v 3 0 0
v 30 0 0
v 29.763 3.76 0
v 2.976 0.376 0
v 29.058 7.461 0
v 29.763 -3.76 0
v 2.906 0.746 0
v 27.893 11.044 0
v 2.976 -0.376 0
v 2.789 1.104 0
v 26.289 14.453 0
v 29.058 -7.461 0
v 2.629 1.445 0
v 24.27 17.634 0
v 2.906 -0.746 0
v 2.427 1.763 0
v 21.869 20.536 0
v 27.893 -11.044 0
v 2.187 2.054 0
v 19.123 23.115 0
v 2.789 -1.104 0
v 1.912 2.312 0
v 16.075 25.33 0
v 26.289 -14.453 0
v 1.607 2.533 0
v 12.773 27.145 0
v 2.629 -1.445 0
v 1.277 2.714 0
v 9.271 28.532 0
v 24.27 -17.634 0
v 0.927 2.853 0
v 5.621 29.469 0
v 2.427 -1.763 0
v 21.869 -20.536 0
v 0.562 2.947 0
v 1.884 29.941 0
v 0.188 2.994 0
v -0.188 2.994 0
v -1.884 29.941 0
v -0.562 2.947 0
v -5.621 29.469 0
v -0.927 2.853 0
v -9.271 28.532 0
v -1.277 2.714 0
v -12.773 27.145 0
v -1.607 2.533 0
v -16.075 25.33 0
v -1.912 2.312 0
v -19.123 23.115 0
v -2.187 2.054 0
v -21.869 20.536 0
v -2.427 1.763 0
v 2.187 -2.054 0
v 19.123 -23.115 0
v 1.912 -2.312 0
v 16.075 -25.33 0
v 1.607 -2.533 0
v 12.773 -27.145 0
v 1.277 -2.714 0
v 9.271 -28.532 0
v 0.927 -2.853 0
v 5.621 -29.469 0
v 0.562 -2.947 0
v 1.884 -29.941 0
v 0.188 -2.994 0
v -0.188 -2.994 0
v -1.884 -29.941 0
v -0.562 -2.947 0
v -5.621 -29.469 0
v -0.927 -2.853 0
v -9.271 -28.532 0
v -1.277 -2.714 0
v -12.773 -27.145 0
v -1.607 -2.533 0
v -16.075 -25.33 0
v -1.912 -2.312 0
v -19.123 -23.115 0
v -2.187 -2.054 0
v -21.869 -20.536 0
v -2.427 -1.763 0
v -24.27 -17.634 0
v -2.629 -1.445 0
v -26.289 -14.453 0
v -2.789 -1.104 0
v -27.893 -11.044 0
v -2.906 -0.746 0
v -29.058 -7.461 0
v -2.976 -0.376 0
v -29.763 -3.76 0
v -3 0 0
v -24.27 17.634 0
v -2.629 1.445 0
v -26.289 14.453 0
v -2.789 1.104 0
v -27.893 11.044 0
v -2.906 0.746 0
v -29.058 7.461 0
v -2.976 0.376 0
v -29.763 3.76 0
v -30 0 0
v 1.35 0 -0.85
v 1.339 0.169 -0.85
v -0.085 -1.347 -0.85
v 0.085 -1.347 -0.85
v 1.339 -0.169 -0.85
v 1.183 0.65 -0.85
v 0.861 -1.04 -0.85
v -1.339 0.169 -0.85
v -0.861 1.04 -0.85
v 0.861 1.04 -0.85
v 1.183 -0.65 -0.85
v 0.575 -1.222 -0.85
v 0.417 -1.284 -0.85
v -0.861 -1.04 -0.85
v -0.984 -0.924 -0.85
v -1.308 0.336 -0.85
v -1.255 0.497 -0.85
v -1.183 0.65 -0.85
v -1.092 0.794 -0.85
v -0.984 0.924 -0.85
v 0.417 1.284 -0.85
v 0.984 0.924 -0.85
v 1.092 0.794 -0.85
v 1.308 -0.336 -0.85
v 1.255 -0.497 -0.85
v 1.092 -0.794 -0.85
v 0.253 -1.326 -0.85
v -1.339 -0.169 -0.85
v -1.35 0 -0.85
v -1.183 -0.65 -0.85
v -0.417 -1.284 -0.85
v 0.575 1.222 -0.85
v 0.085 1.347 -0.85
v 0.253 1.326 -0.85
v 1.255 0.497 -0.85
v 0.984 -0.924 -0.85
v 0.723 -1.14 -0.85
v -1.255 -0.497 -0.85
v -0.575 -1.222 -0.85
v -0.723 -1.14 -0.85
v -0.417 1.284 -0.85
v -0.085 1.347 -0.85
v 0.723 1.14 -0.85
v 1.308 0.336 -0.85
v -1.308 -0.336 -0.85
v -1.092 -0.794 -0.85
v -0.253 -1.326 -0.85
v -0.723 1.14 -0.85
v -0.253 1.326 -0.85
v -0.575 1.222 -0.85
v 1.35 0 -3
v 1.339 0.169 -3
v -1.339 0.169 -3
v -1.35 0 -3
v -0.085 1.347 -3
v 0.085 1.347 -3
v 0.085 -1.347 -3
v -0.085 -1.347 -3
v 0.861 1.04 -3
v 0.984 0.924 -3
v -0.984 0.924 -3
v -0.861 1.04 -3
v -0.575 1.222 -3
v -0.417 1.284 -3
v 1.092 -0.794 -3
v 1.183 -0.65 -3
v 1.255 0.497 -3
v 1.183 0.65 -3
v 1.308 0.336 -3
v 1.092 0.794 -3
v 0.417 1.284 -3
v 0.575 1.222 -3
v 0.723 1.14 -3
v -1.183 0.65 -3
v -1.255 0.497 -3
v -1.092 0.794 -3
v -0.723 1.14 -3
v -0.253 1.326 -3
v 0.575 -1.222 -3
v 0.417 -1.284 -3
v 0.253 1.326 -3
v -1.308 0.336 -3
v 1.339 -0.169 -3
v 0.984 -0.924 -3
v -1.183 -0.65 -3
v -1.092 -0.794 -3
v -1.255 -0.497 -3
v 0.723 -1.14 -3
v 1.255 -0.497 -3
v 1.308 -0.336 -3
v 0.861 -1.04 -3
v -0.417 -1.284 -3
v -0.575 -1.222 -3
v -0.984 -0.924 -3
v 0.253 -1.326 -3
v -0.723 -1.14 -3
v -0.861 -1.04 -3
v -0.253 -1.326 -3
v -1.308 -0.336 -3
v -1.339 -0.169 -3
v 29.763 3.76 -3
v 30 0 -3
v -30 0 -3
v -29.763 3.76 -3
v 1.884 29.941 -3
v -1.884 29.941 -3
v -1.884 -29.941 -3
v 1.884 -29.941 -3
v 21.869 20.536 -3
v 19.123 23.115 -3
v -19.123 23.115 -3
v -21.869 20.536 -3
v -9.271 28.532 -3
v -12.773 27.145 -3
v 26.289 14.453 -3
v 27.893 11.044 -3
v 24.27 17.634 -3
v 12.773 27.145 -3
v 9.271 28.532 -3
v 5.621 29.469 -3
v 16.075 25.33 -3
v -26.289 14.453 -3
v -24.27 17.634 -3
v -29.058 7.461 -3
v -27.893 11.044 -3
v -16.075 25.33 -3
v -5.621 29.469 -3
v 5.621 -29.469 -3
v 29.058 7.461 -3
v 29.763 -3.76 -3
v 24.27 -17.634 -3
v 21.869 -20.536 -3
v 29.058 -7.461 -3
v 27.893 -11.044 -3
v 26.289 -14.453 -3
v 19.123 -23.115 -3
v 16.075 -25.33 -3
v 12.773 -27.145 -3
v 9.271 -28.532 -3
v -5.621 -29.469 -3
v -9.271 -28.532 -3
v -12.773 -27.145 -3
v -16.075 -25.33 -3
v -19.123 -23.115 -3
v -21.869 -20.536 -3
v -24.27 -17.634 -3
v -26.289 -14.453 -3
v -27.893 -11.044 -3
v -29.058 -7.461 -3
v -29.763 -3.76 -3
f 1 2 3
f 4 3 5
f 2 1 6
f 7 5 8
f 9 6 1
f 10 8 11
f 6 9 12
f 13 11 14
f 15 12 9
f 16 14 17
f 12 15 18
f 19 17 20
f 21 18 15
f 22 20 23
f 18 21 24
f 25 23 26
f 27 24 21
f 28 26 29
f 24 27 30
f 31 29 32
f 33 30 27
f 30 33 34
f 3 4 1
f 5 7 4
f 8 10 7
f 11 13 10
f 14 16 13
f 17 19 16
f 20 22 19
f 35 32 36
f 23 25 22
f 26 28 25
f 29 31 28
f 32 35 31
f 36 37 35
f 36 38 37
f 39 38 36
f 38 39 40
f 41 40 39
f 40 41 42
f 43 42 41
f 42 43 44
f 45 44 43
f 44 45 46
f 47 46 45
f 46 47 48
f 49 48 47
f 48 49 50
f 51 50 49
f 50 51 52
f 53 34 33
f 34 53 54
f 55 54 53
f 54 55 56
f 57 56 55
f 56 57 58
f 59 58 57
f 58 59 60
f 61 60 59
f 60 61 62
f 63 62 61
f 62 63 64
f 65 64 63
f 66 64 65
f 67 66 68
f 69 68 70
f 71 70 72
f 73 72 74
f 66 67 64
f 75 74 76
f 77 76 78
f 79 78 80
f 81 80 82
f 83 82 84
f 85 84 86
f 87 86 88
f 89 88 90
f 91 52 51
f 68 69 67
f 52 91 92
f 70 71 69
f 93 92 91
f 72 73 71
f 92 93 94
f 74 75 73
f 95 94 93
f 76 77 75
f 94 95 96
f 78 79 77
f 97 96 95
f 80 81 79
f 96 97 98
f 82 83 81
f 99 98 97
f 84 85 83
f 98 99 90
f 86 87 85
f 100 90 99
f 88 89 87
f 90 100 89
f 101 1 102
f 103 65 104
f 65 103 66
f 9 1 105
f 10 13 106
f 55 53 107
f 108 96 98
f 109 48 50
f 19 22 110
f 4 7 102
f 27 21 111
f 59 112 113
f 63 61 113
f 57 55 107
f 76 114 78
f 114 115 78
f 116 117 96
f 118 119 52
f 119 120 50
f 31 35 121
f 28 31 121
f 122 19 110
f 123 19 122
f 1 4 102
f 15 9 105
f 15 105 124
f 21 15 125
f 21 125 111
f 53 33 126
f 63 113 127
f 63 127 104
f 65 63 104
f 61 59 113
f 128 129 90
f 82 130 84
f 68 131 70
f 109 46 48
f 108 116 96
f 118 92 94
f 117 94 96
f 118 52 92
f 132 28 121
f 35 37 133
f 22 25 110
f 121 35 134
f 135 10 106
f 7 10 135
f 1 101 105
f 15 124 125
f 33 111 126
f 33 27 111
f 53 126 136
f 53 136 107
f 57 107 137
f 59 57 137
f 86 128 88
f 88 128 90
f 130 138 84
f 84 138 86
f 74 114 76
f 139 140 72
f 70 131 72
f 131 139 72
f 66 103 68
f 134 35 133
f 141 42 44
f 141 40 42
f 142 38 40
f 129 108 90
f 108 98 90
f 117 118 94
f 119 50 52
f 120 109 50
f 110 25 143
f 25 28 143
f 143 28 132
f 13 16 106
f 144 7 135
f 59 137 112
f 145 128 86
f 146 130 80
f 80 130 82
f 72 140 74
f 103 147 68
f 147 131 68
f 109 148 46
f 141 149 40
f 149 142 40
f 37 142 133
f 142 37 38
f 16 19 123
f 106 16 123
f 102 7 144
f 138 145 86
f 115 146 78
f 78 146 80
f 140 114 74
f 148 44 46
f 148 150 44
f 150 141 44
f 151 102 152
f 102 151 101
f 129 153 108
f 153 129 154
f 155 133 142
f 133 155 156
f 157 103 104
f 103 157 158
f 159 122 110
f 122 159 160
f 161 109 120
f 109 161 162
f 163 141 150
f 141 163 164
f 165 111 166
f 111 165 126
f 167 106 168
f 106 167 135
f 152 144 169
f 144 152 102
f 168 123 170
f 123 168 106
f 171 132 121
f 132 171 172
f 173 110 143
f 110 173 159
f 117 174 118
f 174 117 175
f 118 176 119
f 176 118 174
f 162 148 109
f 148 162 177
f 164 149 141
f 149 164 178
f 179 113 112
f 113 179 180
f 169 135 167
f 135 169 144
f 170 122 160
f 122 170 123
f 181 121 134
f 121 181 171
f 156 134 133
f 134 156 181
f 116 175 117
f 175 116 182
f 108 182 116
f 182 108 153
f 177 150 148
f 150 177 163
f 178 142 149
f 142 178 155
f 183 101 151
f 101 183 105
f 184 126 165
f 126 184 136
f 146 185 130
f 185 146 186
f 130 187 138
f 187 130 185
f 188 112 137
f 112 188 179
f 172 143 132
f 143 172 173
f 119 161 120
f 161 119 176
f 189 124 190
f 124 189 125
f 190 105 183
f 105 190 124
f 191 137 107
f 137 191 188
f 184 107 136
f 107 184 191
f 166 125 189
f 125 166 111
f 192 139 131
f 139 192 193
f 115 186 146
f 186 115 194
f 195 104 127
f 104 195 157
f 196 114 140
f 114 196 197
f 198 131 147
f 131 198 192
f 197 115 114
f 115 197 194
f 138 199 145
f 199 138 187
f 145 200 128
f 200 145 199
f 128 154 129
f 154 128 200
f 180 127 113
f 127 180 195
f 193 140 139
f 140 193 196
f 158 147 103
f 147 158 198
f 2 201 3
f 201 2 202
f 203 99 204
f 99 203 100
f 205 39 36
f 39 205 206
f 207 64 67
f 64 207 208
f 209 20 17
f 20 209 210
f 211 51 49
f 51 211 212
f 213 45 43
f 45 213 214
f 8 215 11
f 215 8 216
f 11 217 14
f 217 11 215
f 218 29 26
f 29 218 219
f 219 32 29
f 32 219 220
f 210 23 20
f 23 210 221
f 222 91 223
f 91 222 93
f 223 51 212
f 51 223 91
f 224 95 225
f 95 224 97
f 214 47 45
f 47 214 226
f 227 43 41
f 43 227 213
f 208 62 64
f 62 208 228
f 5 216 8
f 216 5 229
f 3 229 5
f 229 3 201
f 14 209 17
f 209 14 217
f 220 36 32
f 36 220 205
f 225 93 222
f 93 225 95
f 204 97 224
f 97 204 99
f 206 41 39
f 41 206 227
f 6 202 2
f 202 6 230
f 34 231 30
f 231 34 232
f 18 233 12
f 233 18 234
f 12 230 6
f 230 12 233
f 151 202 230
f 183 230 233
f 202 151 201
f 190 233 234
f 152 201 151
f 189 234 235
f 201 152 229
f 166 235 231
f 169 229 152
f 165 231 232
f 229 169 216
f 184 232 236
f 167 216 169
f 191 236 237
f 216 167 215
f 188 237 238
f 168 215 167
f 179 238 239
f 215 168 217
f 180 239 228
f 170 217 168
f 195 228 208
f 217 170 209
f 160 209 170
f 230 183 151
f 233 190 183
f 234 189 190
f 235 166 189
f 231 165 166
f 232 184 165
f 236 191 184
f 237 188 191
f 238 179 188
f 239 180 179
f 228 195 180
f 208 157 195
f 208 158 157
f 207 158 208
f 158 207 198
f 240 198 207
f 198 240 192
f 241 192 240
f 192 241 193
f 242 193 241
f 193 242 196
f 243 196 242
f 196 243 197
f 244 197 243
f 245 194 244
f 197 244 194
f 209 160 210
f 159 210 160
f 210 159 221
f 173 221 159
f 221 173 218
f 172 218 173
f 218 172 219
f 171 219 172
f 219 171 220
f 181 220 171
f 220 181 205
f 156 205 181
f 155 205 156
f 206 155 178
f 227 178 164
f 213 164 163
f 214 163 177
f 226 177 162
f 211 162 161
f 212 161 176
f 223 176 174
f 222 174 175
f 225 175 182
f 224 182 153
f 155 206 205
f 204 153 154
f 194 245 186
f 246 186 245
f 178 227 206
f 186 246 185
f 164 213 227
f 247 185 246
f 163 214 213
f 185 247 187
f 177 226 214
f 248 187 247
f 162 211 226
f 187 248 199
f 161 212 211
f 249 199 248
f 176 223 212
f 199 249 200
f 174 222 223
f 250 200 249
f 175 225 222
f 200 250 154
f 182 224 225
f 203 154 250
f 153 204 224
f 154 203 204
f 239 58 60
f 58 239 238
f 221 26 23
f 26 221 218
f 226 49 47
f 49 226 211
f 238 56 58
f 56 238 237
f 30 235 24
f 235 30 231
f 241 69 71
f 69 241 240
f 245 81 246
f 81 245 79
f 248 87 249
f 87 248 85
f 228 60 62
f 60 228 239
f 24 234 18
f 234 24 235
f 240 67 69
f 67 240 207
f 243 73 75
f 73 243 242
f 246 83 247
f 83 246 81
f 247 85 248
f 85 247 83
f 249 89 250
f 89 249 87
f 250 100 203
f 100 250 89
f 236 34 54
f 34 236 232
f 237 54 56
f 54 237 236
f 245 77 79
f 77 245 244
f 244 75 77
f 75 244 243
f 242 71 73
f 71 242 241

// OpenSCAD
$fn = 50;


difference() {
	union() {
		translate(v = [0, 0, -3.0000000000]) {
			cylinder(h = 3, r = 30.0000000000);
		}
	}
	union() {
		translate(v = [0, 0, 0]) {
			rotate(a = [0, 0, 0]) {
				difference() {
					union() {
						translate(v = [0, 0, -6.0000000000]) {
							cylinder(h = 6, r = 1.0000000000);
						}
						translate(v = [0, 0, -0.8500000000]) {
							cylinder(h = 0.8500000000, r1 = 1.3500000000, r2 = 3.0000000000);
						}
						translate(v = [0, 0, -6.0000000000]) {
							cylinder(h = 6, r = 1.3500000000);
						}
						translate(v = [0, 0, -6.0000000000]) {
							cylinder(h = 6, r = 1.0000000000);
						}
					}
					union();
				}
			}
		}
	}
}
